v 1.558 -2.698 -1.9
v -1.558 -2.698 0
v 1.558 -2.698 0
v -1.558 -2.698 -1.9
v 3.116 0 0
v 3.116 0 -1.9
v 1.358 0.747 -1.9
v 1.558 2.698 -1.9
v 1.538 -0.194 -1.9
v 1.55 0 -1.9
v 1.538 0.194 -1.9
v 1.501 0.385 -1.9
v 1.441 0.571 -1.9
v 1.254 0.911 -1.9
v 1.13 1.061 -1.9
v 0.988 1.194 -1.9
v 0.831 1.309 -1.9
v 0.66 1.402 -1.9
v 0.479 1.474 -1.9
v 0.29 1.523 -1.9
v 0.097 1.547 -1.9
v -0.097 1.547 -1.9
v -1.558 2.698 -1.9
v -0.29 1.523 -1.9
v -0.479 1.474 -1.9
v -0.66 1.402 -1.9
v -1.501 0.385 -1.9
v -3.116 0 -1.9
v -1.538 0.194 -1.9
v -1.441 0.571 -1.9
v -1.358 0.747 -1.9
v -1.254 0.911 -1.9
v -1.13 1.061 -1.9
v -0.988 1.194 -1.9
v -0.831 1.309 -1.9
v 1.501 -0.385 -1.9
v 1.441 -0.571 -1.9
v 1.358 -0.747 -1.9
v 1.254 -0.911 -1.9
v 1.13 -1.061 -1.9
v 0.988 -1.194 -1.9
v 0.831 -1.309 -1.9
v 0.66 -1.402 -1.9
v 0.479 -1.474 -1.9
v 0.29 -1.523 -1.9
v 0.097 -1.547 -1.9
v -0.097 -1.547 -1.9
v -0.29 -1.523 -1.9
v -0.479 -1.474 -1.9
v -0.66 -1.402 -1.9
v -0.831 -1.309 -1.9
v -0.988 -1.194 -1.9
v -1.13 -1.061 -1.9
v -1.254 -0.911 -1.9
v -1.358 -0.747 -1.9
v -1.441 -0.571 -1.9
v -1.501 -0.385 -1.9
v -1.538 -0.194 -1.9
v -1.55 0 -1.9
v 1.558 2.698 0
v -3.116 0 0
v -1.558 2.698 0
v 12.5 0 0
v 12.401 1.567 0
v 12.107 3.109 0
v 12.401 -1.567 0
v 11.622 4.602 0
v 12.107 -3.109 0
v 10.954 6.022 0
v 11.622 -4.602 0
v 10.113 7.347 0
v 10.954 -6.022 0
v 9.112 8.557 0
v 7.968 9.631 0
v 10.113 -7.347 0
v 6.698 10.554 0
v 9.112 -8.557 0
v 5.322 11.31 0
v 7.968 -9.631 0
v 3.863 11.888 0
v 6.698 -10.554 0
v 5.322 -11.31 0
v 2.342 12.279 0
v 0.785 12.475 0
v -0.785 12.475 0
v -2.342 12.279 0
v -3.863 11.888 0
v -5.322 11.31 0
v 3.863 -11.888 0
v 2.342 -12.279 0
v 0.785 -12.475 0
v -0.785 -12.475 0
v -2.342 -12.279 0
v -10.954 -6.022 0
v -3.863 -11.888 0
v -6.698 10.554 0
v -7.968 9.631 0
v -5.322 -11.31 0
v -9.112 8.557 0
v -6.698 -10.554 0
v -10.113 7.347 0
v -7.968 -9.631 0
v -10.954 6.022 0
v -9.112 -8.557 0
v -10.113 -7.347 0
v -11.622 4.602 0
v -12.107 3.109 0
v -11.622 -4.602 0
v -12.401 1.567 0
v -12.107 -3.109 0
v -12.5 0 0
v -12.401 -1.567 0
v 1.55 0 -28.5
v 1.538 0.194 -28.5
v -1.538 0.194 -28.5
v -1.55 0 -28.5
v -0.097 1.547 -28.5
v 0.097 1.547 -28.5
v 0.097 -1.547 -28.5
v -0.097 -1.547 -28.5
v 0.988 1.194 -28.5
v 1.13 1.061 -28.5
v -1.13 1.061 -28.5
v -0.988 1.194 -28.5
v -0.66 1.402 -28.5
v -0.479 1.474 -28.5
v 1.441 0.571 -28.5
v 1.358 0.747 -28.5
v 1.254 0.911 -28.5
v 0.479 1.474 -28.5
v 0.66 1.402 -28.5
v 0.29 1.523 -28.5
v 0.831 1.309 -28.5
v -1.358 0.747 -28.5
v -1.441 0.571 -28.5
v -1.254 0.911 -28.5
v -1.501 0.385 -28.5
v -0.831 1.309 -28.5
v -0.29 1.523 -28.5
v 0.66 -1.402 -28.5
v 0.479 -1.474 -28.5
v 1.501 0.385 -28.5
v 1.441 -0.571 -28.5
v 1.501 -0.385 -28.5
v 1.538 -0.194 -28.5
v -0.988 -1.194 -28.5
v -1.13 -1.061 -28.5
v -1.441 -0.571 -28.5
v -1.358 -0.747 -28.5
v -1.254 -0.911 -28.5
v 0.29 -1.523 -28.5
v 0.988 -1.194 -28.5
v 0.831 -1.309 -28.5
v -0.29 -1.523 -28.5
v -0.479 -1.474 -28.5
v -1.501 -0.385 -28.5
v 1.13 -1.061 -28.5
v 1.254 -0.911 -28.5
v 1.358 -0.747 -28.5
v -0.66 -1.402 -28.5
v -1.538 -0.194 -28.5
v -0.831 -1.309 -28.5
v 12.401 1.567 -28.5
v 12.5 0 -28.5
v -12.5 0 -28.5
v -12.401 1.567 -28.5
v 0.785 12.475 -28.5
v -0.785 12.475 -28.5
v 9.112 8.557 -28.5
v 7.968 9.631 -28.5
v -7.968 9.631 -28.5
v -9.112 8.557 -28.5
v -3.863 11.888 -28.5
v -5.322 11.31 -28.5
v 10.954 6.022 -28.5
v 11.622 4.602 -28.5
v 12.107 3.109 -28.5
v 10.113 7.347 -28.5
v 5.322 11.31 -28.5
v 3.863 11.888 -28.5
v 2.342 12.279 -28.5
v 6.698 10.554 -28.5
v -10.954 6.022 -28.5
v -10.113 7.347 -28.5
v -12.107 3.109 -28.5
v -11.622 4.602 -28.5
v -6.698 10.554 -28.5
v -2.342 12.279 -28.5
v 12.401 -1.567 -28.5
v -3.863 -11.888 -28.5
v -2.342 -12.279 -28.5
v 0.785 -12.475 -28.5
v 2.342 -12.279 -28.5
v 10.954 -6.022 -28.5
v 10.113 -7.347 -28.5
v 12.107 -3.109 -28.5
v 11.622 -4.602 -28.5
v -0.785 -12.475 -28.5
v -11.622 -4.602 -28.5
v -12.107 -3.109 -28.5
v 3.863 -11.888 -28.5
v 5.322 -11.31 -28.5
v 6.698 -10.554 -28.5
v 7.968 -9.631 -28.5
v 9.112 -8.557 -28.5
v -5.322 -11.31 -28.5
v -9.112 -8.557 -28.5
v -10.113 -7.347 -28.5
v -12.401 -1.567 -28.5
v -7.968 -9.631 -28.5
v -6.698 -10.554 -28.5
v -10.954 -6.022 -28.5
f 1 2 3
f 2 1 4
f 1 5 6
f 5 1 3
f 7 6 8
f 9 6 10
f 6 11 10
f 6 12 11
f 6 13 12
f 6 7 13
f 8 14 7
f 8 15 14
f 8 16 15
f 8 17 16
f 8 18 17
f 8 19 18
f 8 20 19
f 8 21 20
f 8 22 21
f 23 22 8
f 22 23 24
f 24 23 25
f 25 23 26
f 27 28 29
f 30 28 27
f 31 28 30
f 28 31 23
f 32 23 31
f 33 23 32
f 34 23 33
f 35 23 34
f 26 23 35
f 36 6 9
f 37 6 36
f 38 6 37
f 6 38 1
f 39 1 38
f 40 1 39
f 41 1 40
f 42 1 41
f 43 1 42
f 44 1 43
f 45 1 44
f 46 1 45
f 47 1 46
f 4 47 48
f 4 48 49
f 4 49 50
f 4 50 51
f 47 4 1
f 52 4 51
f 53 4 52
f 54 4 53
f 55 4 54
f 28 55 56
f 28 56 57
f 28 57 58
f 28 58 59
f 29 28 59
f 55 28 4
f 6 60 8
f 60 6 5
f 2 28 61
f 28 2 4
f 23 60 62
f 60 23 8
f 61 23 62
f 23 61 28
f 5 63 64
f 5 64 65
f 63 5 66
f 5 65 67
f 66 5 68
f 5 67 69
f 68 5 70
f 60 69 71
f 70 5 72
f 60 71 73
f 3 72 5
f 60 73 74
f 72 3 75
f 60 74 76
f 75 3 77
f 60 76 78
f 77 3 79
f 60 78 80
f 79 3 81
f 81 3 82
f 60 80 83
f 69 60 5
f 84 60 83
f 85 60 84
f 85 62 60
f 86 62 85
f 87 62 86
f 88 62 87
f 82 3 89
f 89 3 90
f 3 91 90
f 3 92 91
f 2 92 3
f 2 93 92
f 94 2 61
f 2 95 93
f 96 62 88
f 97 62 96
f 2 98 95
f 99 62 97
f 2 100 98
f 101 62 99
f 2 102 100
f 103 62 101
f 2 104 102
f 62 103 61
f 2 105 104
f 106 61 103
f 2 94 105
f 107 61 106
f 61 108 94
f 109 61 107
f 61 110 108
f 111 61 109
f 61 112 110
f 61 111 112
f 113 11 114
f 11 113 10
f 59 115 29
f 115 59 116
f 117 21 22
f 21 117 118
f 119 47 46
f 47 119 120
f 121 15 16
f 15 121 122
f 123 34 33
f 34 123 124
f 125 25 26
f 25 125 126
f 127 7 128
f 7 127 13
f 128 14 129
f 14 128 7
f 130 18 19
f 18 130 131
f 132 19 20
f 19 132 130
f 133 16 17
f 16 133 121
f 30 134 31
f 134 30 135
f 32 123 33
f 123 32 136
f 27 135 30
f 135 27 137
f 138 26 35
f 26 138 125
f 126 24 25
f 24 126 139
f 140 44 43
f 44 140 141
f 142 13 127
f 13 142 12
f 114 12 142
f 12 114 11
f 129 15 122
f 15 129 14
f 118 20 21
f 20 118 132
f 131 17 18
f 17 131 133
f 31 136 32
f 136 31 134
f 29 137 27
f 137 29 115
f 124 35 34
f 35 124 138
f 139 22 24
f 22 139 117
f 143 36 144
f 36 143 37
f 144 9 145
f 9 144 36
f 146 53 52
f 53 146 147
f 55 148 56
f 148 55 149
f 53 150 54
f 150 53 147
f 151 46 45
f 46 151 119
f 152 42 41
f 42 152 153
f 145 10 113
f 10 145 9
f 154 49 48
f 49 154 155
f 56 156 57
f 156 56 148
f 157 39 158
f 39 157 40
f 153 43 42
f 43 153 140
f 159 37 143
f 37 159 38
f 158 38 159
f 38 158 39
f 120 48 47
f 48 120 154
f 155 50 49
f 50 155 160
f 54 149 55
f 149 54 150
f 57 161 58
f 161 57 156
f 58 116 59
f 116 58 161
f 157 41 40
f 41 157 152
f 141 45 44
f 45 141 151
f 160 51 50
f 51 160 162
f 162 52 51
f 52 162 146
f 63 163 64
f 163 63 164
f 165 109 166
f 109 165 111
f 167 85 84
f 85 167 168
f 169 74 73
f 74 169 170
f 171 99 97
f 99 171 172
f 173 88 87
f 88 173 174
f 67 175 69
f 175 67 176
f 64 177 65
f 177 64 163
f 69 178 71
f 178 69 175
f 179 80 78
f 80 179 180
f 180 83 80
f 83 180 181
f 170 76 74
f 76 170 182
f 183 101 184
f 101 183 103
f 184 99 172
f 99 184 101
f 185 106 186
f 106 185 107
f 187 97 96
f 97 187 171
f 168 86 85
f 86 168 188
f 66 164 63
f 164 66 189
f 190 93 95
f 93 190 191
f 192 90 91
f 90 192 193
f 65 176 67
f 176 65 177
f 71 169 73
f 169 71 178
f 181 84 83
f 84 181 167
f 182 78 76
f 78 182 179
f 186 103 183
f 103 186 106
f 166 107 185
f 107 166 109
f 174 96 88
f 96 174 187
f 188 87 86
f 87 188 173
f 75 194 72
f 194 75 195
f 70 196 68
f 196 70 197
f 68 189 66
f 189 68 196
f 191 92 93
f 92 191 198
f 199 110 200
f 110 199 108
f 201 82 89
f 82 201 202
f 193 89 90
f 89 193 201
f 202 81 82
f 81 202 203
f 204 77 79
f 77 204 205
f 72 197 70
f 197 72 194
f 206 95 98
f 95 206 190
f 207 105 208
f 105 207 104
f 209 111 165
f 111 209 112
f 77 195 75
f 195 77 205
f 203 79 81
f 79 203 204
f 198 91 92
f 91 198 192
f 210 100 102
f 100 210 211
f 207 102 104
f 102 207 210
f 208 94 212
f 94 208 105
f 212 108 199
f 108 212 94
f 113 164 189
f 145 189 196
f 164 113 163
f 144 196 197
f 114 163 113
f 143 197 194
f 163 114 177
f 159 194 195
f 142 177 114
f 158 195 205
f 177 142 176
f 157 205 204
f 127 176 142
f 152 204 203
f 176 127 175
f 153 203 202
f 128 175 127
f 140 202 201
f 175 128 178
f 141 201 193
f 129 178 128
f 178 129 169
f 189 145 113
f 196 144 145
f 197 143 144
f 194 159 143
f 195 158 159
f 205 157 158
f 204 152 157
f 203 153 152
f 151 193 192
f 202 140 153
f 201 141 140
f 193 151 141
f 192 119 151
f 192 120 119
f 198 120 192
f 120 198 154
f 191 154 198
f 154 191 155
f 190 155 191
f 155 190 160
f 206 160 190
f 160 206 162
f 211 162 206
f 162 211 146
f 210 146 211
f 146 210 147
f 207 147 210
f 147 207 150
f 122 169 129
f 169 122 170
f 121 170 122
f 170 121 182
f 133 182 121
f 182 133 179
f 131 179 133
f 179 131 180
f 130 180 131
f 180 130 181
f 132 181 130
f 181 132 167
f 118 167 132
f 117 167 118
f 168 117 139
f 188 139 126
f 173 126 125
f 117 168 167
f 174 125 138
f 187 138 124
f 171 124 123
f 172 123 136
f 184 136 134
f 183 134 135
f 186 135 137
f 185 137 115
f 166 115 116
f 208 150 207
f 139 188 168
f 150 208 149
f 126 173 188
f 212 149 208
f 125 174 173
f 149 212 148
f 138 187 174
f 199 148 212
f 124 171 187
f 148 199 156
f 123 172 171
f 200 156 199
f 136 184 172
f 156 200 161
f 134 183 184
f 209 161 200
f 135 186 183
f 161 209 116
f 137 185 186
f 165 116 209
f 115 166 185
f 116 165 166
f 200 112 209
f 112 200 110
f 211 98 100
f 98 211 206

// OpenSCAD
$fn = 50;

difference() {
	union() {
		translate(v = [0, 0, -28.5]) {
			cylinder(h = 28.5, r = 12.5);
		}
	}
	union() {
		translate(v = [0, 0, 0]) {
			rotate(a = [0, 0, 0]) {
				difference() {
					union() {
						translate(v = [0, 0, -1.9]) {
							linear_extrude(height = 1.9) {
								polygon(points = [[3.1158, 0.0], [1.5579000000000005, 2.698361953111554], [-1.5578999999999994, 2.6983619531115544], [-3.1158, 3.815754496783323e-16], [-1.5579000000000014, -2.6983619531115535], [1.557899999999998, -2.6983619531115552]]);
							}
						}
					}
					union();
				}
			}
		}
		#translate(v = [0, 0, -100.0]) {
			cylinder(h = 200, r = 1.55);
		}
	}
}
